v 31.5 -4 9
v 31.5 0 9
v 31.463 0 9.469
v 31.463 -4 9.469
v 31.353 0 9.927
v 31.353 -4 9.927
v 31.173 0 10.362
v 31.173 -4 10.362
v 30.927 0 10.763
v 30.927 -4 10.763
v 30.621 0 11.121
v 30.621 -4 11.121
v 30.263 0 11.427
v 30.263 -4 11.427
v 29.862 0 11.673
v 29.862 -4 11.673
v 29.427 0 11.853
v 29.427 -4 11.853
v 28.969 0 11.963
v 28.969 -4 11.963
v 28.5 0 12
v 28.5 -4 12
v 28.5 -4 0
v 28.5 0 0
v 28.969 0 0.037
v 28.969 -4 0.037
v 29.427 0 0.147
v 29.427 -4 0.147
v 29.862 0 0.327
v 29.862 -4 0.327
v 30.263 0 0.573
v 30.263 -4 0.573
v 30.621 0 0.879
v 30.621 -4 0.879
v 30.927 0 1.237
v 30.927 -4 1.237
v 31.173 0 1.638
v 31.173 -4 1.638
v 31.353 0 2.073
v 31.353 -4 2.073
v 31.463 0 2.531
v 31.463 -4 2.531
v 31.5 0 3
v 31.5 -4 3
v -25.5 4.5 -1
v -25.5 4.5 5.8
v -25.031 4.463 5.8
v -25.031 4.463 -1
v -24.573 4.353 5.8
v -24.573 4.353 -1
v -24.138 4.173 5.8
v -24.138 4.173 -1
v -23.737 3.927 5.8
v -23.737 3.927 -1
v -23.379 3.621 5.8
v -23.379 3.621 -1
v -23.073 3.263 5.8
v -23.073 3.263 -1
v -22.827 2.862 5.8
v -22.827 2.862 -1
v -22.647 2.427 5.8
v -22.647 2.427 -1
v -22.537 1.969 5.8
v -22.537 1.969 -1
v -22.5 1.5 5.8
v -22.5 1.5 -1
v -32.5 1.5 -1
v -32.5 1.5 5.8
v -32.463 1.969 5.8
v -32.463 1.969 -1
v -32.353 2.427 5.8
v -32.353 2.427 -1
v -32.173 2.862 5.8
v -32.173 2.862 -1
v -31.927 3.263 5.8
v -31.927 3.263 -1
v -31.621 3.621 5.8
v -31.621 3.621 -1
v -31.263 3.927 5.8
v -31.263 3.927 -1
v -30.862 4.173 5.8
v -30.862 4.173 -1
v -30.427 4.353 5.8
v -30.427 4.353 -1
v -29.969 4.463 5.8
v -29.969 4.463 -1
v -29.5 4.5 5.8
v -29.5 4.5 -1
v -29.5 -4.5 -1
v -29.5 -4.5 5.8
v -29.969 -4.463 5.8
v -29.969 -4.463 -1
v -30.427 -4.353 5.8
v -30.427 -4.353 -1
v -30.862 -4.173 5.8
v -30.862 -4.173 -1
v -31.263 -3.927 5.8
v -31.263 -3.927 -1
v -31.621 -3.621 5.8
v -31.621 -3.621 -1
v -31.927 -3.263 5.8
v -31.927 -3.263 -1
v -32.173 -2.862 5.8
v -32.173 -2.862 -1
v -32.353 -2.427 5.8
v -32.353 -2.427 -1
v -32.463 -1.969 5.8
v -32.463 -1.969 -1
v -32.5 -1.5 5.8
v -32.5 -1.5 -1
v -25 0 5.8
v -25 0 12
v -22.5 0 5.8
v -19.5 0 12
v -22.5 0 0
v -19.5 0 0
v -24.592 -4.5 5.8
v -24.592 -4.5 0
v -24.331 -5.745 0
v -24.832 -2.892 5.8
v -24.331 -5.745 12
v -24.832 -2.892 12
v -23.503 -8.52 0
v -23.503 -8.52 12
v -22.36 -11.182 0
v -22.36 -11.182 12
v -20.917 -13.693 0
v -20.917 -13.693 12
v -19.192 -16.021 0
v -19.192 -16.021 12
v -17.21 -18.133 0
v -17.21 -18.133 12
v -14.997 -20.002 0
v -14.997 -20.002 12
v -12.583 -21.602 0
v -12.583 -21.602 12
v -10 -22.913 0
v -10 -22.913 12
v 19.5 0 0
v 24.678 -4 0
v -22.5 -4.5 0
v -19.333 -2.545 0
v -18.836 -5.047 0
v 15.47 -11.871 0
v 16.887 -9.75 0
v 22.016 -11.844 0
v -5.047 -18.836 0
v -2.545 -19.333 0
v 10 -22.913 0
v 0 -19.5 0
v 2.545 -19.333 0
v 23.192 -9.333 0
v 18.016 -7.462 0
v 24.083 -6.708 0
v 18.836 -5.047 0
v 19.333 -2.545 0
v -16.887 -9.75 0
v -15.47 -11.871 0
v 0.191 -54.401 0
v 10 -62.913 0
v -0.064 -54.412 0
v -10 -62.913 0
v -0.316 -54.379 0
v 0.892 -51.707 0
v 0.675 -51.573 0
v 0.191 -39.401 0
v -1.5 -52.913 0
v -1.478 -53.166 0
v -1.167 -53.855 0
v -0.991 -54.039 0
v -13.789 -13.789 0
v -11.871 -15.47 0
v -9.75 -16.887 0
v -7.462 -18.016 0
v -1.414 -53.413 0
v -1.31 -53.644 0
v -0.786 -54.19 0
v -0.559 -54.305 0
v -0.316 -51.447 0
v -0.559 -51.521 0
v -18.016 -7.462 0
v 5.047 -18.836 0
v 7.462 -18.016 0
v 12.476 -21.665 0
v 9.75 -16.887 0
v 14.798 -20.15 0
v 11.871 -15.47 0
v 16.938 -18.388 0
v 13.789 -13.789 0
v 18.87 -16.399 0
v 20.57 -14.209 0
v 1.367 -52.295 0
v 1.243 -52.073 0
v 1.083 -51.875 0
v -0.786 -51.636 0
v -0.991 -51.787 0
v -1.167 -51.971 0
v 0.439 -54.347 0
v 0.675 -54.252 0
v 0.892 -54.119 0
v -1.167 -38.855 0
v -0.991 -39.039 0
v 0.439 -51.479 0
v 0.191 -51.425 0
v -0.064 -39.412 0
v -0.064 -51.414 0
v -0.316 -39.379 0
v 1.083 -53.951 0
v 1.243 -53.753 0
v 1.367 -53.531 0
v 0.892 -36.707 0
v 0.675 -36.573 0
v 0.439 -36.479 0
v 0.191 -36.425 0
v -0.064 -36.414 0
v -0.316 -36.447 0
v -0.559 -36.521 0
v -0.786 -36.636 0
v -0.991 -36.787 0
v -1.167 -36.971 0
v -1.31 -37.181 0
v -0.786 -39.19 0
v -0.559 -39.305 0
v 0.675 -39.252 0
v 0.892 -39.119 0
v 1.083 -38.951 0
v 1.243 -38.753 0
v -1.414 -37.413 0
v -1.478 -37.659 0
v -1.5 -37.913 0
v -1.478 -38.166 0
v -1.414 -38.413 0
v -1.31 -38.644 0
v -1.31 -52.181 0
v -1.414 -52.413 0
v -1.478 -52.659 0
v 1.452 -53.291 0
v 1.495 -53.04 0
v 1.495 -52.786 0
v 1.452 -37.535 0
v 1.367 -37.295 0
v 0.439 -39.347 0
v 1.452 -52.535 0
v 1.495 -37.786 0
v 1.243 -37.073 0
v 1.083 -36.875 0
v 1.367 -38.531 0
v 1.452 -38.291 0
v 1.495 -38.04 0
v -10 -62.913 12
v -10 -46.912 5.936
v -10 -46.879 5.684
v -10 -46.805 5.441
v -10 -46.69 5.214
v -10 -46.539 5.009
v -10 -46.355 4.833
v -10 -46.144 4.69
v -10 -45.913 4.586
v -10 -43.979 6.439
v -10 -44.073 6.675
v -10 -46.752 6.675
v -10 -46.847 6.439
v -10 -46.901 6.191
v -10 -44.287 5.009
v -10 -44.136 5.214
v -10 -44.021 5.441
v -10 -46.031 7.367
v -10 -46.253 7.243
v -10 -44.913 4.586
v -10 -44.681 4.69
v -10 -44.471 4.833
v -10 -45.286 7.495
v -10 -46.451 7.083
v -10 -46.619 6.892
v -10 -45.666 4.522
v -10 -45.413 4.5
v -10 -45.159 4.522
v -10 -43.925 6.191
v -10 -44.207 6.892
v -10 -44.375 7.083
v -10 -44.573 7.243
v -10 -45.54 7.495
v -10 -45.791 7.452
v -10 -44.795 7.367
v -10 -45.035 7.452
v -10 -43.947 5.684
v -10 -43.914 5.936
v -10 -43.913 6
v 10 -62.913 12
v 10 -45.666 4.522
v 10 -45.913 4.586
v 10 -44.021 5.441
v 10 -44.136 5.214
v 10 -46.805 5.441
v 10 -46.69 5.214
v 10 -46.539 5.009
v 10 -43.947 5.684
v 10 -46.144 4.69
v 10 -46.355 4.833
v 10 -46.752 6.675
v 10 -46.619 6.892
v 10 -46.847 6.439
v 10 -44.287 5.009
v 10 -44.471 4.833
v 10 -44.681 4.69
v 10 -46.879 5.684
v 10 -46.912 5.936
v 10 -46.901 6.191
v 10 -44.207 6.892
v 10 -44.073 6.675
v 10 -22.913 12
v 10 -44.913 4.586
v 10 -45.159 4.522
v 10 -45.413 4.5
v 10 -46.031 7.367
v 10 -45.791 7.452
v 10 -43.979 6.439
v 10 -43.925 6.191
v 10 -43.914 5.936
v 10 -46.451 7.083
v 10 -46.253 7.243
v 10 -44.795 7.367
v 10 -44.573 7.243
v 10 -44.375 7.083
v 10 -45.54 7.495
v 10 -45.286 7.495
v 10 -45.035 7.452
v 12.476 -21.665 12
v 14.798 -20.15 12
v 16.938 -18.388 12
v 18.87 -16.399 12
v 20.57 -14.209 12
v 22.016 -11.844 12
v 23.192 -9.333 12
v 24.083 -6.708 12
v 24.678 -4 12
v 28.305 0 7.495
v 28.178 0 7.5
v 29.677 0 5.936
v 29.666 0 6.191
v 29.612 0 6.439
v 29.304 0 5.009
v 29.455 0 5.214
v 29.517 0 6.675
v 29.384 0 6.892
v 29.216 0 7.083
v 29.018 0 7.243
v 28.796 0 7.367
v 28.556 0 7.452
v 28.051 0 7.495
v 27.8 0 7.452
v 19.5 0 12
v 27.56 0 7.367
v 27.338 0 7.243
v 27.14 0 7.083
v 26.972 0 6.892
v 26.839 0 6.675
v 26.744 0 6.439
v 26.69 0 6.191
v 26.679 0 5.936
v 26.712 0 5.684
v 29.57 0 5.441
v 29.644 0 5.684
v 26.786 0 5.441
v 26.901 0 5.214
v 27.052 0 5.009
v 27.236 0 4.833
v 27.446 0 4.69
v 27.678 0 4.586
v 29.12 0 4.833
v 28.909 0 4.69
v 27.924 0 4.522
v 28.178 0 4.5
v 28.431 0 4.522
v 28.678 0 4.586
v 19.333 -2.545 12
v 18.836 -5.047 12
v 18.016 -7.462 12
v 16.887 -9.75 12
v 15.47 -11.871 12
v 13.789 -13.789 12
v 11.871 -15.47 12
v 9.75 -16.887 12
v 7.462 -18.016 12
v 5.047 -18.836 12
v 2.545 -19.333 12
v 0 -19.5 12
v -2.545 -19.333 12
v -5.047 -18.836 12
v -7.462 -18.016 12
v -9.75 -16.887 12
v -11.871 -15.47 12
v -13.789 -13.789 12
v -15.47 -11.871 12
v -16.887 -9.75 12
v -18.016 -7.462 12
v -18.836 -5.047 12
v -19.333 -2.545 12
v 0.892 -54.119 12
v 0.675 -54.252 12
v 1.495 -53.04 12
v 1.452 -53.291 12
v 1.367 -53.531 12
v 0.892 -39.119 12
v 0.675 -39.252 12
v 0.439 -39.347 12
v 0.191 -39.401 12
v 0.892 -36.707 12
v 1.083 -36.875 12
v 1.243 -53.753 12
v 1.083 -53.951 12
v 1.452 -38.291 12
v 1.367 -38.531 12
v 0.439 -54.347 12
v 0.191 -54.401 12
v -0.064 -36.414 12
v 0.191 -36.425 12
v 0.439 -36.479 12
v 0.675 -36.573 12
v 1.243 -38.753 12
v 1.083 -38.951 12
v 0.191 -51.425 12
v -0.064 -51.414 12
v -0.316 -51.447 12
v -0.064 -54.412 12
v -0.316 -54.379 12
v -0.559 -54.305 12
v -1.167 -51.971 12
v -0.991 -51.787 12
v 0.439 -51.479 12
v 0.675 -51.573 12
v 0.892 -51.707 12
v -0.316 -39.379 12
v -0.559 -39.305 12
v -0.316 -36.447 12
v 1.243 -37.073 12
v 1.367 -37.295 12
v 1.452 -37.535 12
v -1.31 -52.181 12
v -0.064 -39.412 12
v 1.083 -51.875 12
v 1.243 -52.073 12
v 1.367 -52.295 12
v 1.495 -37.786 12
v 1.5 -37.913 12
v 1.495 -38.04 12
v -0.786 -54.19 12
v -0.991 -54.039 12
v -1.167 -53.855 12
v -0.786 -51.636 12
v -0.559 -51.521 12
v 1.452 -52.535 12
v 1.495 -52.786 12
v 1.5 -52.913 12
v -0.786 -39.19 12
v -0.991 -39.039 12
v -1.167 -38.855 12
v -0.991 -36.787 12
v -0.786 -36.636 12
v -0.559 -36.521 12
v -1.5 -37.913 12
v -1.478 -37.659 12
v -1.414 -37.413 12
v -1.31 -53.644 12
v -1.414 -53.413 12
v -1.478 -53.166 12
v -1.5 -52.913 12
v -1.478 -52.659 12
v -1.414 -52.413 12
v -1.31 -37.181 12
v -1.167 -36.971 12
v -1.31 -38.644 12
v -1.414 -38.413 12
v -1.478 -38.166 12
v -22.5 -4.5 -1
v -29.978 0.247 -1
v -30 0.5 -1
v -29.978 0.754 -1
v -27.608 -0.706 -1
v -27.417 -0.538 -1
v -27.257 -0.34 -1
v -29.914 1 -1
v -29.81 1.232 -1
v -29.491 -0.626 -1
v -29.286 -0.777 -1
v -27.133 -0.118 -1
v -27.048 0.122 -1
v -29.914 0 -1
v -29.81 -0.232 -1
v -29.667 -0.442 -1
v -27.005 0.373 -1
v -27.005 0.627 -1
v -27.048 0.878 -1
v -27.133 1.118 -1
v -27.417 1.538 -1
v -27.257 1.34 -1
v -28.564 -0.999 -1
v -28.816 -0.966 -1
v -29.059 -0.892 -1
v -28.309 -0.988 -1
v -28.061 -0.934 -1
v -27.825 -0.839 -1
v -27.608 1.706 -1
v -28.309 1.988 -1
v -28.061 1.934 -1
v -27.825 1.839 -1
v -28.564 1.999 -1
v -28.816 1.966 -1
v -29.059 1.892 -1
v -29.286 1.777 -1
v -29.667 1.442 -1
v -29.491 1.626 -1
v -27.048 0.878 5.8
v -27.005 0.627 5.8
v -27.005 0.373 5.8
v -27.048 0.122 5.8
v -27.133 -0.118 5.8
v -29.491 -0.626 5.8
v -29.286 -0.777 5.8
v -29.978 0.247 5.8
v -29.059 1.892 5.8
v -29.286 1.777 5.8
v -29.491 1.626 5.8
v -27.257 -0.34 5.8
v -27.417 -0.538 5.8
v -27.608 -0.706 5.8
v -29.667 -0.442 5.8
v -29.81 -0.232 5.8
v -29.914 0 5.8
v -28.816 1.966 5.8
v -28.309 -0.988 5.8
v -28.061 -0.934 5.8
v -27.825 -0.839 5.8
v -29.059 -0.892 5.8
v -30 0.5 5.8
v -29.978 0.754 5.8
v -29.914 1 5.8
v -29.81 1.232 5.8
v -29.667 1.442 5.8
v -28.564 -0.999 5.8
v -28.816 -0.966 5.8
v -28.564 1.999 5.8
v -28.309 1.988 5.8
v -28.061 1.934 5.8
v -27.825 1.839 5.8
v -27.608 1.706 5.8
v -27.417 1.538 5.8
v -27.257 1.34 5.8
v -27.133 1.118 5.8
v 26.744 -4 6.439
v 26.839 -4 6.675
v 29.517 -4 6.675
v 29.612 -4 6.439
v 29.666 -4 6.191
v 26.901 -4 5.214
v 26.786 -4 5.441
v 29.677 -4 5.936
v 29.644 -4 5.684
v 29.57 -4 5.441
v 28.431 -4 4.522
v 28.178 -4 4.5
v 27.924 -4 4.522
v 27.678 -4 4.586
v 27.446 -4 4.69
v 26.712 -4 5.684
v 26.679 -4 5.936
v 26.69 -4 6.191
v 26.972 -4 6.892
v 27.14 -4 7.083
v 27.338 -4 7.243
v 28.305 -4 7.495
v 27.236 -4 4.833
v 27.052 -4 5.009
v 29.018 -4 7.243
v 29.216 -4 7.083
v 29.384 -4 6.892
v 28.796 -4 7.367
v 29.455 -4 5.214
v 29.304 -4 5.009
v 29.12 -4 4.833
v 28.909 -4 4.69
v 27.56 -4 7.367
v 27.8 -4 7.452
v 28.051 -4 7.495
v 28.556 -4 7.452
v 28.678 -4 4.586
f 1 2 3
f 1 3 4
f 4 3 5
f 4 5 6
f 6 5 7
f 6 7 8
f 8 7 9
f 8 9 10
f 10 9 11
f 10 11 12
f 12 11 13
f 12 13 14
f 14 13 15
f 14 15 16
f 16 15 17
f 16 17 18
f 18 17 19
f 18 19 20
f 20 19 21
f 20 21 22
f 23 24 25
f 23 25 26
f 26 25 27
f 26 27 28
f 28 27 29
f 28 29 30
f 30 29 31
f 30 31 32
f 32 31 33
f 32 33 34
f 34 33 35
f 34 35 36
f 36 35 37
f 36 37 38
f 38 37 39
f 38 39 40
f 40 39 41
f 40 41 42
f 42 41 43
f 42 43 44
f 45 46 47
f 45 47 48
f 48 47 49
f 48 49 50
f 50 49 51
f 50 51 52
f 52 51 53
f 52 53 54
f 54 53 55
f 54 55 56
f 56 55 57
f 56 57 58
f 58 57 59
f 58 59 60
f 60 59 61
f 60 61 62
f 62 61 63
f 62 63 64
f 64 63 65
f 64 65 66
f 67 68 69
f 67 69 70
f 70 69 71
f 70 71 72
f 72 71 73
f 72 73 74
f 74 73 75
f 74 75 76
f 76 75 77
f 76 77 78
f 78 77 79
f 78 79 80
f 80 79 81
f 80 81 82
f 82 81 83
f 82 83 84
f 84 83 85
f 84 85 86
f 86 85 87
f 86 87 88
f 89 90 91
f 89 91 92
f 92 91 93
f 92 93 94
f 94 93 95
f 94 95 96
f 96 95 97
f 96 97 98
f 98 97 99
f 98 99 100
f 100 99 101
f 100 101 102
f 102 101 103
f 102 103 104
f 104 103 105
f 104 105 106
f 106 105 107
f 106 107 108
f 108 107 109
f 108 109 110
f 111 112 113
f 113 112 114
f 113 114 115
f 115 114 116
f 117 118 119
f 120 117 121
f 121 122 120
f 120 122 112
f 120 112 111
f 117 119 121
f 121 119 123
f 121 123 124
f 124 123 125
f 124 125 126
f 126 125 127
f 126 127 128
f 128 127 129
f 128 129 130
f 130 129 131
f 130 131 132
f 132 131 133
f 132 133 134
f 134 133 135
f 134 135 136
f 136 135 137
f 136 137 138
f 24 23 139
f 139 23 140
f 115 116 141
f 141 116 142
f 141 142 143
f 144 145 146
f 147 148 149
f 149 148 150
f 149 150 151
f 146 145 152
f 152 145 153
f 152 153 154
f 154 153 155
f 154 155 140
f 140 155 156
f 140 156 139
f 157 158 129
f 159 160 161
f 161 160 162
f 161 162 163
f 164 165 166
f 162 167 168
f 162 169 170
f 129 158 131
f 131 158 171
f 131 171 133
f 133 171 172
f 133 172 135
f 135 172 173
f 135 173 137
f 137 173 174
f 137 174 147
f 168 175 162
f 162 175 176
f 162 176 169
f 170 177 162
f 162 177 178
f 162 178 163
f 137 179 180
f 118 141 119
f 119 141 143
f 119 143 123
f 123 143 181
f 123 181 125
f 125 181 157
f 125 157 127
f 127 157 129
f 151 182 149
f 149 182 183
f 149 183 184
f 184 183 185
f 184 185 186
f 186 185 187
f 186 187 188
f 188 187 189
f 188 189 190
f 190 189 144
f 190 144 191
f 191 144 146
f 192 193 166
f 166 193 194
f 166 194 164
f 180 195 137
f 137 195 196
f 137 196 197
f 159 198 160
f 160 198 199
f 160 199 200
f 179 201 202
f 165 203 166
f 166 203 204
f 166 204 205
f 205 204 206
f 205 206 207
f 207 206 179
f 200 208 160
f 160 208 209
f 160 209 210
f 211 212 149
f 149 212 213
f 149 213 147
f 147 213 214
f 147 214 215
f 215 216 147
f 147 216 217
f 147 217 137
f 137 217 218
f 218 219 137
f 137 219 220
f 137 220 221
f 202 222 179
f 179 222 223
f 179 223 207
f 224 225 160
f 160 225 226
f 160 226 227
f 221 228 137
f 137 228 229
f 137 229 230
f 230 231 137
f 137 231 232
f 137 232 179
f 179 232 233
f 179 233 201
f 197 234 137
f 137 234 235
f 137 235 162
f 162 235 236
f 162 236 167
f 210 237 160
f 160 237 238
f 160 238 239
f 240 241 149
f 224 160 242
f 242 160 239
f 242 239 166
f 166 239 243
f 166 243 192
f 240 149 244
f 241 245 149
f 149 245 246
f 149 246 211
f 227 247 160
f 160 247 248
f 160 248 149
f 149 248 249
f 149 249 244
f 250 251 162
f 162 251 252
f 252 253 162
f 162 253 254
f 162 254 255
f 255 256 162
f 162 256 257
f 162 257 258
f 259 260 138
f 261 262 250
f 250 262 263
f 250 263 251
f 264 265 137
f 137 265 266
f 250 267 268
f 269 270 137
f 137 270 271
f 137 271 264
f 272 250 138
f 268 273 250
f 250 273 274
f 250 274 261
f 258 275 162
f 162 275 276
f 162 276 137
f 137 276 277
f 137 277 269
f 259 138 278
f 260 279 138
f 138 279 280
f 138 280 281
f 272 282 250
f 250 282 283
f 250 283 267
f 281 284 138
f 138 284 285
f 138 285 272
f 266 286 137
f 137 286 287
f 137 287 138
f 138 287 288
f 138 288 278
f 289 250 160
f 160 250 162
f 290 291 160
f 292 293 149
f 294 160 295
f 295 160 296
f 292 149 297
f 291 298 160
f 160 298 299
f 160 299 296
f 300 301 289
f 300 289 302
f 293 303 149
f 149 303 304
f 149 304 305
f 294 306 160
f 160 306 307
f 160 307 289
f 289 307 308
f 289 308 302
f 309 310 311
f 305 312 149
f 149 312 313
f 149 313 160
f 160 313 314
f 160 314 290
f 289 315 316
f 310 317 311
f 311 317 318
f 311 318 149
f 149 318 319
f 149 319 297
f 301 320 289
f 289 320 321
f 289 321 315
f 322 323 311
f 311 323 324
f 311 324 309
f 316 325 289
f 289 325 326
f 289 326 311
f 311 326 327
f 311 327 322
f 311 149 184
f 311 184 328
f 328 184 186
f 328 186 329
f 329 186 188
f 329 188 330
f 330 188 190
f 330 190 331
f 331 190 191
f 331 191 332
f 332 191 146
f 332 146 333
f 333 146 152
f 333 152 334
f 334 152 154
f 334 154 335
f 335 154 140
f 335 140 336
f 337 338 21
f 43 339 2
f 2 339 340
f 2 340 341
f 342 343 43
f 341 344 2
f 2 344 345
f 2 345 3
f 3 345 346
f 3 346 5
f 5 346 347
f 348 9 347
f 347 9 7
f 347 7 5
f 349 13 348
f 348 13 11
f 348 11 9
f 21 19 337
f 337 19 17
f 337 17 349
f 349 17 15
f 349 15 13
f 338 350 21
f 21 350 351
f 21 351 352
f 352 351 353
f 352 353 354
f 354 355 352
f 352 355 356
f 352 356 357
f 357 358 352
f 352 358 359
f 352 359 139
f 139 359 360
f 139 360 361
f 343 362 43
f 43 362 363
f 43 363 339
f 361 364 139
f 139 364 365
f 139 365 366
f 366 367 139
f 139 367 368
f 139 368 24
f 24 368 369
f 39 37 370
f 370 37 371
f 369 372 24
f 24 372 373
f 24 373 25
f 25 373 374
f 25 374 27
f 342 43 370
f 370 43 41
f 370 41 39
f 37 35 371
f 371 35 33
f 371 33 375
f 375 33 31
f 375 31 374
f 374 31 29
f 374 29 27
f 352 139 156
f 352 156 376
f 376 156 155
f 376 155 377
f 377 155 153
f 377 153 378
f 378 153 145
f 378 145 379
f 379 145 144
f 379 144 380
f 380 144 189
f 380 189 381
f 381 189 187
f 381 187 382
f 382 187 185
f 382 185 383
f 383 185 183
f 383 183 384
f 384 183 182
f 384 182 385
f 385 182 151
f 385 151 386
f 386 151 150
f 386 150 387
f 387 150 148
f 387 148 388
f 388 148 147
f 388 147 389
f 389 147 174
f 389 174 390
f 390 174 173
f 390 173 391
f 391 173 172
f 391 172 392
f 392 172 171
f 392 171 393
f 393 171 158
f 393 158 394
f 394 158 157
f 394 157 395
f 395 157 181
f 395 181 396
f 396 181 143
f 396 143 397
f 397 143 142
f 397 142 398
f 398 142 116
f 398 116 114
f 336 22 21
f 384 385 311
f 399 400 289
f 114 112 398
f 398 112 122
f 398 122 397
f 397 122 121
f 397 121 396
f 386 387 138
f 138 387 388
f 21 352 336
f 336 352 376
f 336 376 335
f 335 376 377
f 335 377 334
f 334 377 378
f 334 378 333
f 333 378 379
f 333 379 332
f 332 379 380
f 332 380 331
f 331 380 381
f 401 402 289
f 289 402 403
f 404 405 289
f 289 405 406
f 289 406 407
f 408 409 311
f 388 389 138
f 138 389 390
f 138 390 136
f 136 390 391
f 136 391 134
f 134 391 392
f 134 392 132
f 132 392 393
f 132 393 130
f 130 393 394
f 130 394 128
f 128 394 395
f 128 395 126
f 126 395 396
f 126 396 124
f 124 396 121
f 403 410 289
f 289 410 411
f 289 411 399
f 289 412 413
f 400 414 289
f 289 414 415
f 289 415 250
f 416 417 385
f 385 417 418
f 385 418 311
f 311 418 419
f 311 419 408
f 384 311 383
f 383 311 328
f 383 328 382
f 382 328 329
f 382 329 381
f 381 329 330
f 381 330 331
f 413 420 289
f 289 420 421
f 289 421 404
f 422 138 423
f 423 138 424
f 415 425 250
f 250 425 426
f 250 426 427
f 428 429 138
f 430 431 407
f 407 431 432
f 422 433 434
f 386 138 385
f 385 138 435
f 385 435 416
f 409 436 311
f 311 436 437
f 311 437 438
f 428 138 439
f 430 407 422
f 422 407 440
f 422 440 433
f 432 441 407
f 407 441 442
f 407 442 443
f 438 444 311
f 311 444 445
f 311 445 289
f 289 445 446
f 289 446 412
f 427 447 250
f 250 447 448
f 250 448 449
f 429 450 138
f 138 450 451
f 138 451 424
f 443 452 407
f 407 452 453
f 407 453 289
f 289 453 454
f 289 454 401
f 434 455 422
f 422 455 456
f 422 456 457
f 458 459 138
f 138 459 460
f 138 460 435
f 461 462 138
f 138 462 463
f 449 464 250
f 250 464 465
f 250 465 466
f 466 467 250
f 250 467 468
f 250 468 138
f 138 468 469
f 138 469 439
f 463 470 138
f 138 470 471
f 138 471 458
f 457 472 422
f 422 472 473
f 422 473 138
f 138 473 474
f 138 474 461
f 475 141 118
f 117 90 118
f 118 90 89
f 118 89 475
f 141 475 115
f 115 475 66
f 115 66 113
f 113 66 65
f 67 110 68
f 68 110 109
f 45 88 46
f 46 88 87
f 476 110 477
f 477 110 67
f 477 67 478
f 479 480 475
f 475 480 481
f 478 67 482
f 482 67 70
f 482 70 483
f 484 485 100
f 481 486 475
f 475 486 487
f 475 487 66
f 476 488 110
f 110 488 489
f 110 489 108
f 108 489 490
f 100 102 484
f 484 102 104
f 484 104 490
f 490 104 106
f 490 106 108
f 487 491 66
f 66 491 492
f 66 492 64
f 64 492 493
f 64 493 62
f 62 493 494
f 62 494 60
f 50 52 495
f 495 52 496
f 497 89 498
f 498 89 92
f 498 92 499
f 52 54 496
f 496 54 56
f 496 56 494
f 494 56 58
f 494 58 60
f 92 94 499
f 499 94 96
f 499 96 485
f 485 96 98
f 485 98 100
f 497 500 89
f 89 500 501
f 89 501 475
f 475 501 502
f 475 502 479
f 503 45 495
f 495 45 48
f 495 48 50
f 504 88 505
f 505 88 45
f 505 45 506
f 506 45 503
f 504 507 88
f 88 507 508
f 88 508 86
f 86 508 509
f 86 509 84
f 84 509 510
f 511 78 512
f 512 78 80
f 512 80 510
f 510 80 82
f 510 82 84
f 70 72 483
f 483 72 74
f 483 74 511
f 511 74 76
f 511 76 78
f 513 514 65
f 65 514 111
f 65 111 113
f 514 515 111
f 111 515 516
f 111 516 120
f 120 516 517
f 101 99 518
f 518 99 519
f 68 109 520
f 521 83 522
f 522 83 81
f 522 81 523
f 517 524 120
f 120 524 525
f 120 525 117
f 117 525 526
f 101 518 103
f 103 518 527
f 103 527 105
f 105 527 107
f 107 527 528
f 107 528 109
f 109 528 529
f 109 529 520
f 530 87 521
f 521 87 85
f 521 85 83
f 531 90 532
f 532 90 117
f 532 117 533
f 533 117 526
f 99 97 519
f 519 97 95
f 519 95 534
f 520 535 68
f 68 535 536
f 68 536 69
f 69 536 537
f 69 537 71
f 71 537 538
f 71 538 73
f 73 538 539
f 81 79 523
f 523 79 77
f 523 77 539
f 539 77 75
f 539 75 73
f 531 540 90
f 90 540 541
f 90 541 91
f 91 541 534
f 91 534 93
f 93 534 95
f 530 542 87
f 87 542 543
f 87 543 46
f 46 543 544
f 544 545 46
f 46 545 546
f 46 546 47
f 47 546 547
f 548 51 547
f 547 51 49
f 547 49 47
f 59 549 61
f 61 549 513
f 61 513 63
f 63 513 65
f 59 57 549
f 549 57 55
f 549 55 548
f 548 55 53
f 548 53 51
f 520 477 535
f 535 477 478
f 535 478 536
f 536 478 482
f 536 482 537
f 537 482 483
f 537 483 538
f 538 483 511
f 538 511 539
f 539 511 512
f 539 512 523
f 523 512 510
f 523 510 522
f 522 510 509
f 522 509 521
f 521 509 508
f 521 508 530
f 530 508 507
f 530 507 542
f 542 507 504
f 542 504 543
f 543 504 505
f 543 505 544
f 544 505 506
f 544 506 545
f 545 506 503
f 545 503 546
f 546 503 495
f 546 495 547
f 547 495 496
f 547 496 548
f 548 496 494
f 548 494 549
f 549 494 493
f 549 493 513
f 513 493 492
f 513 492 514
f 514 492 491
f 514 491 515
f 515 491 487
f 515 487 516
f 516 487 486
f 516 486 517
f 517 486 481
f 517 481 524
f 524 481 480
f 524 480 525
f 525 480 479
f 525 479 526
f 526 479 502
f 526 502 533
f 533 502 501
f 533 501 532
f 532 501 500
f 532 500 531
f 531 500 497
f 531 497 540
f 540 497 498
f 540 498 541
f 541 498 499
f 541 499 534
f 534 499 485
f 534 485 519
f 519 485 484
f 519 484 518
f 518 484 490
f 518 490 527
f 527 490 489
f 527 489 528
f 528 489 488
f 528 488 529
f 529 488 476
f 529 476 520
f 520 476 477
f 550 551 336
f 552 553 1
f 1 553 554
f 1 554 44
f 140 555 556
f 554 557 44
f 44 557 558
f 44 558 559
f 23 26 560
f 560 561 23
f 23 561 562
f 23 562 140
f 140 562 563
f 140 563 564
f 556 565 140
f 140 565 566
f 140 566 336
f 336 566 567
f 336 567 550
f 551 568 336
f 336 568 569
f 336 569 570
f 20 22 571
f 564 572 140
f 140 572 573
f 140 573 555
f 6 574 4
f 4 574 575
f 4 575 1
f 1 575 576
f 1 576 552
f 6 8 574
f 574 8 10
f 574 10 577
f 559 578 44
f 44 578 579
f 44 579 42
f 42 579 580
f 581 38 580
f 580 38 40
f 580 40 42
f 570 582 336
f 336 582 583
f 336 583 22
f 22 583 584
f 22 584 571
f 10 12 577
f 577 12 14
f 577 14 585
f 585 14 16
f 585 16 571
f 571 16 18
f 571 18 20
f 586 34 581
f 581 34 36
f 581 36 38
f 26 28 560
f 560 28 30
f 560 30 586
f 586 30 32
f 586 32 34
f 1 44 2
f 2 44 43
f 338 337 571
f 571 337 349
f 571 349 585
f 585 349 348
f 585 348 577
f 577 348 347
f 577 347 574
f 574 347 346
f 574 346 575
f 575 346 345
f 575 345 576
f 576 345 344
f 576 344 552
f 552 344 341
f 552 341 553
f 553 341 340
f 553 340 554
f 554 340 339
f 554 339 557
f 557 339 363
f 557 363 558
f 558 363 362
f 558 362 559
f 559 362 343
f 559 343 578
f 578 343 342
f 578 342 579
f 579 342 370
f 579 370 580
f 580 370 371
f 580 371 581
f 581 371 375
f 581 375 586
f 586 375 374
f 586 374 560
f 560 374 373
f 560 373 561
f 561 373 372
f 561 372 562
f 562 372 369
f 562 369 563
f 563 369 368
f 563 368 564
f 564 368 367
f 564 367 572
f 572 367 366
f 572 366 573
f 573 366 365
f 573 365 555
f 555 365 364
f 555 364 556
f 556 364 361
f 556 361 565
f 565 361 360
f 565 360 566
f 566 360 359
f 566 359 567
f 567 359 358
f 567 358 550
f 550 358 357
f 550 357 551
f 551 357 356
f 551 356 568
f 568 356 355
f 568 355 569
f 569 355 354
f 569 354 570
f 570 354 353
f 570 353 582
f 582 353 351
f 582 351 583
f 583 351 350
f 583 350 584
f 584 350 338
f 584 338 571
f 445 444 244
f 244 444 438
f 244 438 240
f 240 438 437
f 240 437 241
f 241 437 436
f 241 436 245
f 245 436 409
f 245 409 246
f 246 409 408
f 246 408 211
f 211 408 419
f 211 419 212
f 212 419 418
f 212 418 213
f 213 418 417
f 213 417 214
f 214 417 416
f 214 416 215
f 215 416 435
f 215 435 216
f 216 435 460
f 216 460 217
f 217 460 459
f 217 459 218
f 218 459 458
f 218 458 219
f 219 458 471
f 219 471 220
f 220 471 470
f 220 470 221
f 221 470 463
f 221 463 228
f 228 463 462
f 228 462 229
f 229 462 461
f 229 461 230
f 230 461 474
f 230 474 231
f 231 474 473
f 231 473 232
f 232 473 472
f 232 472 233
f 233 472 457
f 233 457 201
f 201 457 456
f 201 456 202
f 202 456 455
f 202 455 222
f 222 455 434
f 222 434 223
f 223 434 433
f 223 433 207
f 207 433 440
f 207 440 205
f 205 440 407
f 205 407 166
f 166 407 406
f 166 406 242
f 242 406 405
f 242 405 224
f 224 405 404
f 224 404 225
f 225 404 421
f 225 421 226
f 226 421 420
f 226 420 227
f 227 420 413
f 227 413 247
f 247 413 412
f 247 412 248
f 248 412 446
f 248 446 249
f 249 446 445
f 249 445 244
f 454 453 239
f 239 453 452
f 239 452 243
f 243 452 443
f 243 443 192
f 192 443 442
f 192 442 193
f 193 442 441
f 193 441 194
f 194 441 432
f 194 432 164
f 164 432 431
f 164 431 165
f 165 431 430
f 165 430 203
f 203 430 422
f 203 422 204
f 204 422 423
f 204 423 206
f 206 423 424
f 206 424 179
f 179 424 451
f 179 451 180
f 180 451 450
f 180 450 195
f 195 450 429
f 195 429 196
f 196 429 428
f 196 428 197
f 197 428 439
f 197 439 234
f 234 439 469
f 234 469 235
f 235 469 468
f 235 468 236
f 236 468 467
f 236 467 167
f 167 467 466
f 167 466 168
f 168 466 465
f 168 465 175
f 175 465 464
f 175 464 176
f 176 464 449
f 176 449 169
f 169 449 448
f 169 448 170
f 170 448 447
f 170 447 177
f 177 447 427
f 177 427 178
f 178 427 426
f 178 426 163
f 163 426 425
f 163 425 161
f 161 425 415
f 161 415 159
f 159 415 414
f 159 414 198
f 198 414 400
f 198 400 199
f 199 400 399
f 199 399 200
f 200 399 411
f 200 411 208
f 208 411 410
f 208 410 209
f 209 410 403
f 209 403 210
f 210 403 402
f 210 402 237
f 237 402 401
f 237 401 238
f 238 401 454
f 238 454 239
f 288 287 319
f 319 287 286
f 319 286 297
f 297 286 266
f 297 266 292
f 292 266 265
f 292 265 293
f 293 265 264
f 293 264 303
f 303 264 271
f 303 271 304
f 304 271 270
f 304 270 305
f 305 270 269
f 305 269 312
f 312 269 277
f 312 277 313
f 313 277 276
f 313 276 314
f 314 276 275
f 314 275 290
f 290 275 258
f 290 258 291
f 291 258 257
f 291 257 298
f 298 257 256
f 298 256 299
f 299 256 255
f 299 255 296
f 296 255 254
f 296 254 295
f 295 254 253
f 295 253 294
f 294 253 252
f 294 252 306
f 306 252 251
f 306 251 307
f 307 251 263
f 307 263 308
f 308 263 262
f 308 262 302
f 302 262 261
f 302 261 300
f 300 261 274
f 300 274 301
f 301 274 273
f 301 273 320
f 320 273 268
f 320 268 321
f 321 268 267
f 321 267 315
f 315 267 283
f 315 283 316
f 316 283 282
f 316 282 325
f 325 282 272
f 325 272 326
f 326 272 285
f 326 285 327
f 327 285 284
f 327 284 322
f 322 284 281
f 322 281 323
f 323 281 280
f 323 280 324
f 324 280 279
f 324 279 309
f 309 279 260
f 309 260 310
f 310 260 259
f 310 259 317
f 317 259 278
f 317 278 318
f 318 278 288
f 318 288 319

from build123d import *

# Parameters (mm, degrees)
BOSS_EXTRUDE8_DEPTH      = 12
SKETCH2_W                = 10
SKETCH2_H                = 9
BOSS_EXTRUDE9_DEPTH      = 1
BOSS_EXTRUDE9_DEPTH_BACK = 5.8
SKETCH3_R                = 1.5
CUT_EXTRUDE1_DEPTH       = 10
SKETCH4_W                = 8
SKETCH4_H                = 4
BOSS_EXTRUDE10_DEPTH     = 12
SKETCH5_R                = 1.5
CUT_EXTRUDE2_DEPTH       = 12
FILLET2_R                = 3
FILLET3_R                = 3
FILLET4_R                = 3
FILLET5_R                = 3
FILLET6_R                = 3
SKETCH6_R                = 1.5
CUT_EXTRUDE4_DEPTH       = 20
SKETCH7_R                = 1.5
CUT_EXTRUDE5_DEPTH       = 30


with BuildPart() as part:
    # Sketch1 → Boss-Extrude8 (new body)
    with BuildSketch(Plane.XY):
        with BuildLine():
            Line((25, 0), (19.5, 0))
            ThreePointArc((19.5, 0), (0, -19.5), (-19.5, 0))
            Line((-19.5, 0), (-25, 0))
            ThreePointArc((-25, 0), (-20.916500663, -13.693063938), (-10, -22.912878475))
            ThreePointArc((-10, -22.912878475), (0, -25), (10, -22.912878475))
            ThreePointArc((10, -22.912878475), (20.916500663, -13.693063938), (25, 0))
        make_face()
        with BuildLine():
            Line((10, -62.912878475), (10, -22.912878475))
            ThreePointArc((10, -22.912878475), (0, -25), (-10, -22.912878475))
            Line((-10, -22.912878475), (-10, -62.912878475))
            Line((-10, -62.912878475), (10, -62.912878475))
        make_face()
    extrude(amount=BOSS_EXTRUDE8_DEPTH)

    # Sketch2 → Boss-Extrude9 (add, two sides)
    with BuildSketch(Plane(origin=(0, 0, 0), x_dir=(-1, 0, 0), z_dir=(0, 0, -1))) as boss_extrude9_sk:
        with Locations((27.5, 0)):
            Rectangle(SKETCH2_W, SKETCH2_H)
    extrude(amount=BOSS_EXTRUDE9_DEPTH)
    extrude(boss_extrude9_sk.sketch, amount=-BOSS_EXTRUDE9_DEPTH_BACK)

    # Sketch3 → Cut-Extrude1 (cut)
    with BuildSketch(Plane(origin=(0, 0, -1), x_dir=(-1, 0, 0), z_dir=(0, 0, -1))):
        with Locations((28.5, 0.5)):
            Circle(SKETCH3_R)
    extrude(amount=-CUT_EXTRUDE1_DEPTH, mode=Mode.SUBTRACT)

    # Sketch4 → Boss-Extrude10 (add)
    with BuildSketch(Plane(origin=(0, 0, 0), x_dir=(-1, 0, 0), z_dir=(0, 0, -1))):
        with Locations((-27.5, -2)):
            Rectangle(SKETCH4_W, SKETCH4_H)
    extrude(amount=-BOSS_EXTRUDE10_DEPTH)

    # Sketch5 → Cut-Extrude2 (cut)
    with BuildSketch(Plane.XZ.offset(4)):
        with Locations((28.177925359, 6)):
            Circle(SKETCH5_R)
    extrude(amount=-CUT_EXTRUDE2_DEPTH, mode=Mode.SUBTRACT)

    # Fillet2
    fillet2_edges = [part.edges().sort_by_distance(p)[0] for p in [
        (-32.5, -4.5, 2.4),
    ]]
    fillet(fillet2_edges, radius=FILLET2_R)

    # Fillet3
    fillet3_edges = [part.edges().sort_by_distance(p)[0] for p in [
        (-32.5, 4.5, 2.4),
    ]]
    fillet(fillet3_edges, radius=FILLET3_R)

    # Fillet4
    fillet4_edges = [part.edges().sort_by_distance(p)[0] for p in [
        (-22.5, 4.5, 2.4),
    ]]
    fillet(fillet4_edges, radius=FILLET4_R)

    # Fillet5
    fillet5_edges = [part.edges().sort_by_distance(p)[0] for p in [
        (31.5, -2, 0),
    ]]
    fillet(fillet5_edges, radius=FILLET5_R)

    # Fillet6
    fillet6_edges = [part.edges().sort_by_distance(p)[0] for p in [
        (31.5, -2, 12),
    ]]
    fillet(fillet6_edges, radius=FILLET6_R)

    # Sketch6 → Cut-Extrude4 (cut)
    with BuildSketch(Plane(origin=(0, 0, 0), x_dir=(-1, 0, 0), z_dir=(0, 0, -1))):
        with Locations((0, -37.912878475)):
            Circle(SKETCH6_R)
        with Locations((0, -52.912878475)):
            Circle(SKETCH6_R)
    extrude(amount=-CUT_EXTRUDE4_DEPTH, mode=Mode.SUBTRACT)

    # Sketch7 → Cut-Extrude5 (cut)
    with BuildSketch(Plane(origin=(10, 0, 0), x_dir=(0, 0, -1), z_dir=(1, 0, 0))):
        with Locations((-6, -45.412878475)):
            Circle(SKETCH7_R)
    extrude(amount=-CUT_EXTRUDE5_DEPTH, mode=Mode.SUBTRACT)


solid = part.part
